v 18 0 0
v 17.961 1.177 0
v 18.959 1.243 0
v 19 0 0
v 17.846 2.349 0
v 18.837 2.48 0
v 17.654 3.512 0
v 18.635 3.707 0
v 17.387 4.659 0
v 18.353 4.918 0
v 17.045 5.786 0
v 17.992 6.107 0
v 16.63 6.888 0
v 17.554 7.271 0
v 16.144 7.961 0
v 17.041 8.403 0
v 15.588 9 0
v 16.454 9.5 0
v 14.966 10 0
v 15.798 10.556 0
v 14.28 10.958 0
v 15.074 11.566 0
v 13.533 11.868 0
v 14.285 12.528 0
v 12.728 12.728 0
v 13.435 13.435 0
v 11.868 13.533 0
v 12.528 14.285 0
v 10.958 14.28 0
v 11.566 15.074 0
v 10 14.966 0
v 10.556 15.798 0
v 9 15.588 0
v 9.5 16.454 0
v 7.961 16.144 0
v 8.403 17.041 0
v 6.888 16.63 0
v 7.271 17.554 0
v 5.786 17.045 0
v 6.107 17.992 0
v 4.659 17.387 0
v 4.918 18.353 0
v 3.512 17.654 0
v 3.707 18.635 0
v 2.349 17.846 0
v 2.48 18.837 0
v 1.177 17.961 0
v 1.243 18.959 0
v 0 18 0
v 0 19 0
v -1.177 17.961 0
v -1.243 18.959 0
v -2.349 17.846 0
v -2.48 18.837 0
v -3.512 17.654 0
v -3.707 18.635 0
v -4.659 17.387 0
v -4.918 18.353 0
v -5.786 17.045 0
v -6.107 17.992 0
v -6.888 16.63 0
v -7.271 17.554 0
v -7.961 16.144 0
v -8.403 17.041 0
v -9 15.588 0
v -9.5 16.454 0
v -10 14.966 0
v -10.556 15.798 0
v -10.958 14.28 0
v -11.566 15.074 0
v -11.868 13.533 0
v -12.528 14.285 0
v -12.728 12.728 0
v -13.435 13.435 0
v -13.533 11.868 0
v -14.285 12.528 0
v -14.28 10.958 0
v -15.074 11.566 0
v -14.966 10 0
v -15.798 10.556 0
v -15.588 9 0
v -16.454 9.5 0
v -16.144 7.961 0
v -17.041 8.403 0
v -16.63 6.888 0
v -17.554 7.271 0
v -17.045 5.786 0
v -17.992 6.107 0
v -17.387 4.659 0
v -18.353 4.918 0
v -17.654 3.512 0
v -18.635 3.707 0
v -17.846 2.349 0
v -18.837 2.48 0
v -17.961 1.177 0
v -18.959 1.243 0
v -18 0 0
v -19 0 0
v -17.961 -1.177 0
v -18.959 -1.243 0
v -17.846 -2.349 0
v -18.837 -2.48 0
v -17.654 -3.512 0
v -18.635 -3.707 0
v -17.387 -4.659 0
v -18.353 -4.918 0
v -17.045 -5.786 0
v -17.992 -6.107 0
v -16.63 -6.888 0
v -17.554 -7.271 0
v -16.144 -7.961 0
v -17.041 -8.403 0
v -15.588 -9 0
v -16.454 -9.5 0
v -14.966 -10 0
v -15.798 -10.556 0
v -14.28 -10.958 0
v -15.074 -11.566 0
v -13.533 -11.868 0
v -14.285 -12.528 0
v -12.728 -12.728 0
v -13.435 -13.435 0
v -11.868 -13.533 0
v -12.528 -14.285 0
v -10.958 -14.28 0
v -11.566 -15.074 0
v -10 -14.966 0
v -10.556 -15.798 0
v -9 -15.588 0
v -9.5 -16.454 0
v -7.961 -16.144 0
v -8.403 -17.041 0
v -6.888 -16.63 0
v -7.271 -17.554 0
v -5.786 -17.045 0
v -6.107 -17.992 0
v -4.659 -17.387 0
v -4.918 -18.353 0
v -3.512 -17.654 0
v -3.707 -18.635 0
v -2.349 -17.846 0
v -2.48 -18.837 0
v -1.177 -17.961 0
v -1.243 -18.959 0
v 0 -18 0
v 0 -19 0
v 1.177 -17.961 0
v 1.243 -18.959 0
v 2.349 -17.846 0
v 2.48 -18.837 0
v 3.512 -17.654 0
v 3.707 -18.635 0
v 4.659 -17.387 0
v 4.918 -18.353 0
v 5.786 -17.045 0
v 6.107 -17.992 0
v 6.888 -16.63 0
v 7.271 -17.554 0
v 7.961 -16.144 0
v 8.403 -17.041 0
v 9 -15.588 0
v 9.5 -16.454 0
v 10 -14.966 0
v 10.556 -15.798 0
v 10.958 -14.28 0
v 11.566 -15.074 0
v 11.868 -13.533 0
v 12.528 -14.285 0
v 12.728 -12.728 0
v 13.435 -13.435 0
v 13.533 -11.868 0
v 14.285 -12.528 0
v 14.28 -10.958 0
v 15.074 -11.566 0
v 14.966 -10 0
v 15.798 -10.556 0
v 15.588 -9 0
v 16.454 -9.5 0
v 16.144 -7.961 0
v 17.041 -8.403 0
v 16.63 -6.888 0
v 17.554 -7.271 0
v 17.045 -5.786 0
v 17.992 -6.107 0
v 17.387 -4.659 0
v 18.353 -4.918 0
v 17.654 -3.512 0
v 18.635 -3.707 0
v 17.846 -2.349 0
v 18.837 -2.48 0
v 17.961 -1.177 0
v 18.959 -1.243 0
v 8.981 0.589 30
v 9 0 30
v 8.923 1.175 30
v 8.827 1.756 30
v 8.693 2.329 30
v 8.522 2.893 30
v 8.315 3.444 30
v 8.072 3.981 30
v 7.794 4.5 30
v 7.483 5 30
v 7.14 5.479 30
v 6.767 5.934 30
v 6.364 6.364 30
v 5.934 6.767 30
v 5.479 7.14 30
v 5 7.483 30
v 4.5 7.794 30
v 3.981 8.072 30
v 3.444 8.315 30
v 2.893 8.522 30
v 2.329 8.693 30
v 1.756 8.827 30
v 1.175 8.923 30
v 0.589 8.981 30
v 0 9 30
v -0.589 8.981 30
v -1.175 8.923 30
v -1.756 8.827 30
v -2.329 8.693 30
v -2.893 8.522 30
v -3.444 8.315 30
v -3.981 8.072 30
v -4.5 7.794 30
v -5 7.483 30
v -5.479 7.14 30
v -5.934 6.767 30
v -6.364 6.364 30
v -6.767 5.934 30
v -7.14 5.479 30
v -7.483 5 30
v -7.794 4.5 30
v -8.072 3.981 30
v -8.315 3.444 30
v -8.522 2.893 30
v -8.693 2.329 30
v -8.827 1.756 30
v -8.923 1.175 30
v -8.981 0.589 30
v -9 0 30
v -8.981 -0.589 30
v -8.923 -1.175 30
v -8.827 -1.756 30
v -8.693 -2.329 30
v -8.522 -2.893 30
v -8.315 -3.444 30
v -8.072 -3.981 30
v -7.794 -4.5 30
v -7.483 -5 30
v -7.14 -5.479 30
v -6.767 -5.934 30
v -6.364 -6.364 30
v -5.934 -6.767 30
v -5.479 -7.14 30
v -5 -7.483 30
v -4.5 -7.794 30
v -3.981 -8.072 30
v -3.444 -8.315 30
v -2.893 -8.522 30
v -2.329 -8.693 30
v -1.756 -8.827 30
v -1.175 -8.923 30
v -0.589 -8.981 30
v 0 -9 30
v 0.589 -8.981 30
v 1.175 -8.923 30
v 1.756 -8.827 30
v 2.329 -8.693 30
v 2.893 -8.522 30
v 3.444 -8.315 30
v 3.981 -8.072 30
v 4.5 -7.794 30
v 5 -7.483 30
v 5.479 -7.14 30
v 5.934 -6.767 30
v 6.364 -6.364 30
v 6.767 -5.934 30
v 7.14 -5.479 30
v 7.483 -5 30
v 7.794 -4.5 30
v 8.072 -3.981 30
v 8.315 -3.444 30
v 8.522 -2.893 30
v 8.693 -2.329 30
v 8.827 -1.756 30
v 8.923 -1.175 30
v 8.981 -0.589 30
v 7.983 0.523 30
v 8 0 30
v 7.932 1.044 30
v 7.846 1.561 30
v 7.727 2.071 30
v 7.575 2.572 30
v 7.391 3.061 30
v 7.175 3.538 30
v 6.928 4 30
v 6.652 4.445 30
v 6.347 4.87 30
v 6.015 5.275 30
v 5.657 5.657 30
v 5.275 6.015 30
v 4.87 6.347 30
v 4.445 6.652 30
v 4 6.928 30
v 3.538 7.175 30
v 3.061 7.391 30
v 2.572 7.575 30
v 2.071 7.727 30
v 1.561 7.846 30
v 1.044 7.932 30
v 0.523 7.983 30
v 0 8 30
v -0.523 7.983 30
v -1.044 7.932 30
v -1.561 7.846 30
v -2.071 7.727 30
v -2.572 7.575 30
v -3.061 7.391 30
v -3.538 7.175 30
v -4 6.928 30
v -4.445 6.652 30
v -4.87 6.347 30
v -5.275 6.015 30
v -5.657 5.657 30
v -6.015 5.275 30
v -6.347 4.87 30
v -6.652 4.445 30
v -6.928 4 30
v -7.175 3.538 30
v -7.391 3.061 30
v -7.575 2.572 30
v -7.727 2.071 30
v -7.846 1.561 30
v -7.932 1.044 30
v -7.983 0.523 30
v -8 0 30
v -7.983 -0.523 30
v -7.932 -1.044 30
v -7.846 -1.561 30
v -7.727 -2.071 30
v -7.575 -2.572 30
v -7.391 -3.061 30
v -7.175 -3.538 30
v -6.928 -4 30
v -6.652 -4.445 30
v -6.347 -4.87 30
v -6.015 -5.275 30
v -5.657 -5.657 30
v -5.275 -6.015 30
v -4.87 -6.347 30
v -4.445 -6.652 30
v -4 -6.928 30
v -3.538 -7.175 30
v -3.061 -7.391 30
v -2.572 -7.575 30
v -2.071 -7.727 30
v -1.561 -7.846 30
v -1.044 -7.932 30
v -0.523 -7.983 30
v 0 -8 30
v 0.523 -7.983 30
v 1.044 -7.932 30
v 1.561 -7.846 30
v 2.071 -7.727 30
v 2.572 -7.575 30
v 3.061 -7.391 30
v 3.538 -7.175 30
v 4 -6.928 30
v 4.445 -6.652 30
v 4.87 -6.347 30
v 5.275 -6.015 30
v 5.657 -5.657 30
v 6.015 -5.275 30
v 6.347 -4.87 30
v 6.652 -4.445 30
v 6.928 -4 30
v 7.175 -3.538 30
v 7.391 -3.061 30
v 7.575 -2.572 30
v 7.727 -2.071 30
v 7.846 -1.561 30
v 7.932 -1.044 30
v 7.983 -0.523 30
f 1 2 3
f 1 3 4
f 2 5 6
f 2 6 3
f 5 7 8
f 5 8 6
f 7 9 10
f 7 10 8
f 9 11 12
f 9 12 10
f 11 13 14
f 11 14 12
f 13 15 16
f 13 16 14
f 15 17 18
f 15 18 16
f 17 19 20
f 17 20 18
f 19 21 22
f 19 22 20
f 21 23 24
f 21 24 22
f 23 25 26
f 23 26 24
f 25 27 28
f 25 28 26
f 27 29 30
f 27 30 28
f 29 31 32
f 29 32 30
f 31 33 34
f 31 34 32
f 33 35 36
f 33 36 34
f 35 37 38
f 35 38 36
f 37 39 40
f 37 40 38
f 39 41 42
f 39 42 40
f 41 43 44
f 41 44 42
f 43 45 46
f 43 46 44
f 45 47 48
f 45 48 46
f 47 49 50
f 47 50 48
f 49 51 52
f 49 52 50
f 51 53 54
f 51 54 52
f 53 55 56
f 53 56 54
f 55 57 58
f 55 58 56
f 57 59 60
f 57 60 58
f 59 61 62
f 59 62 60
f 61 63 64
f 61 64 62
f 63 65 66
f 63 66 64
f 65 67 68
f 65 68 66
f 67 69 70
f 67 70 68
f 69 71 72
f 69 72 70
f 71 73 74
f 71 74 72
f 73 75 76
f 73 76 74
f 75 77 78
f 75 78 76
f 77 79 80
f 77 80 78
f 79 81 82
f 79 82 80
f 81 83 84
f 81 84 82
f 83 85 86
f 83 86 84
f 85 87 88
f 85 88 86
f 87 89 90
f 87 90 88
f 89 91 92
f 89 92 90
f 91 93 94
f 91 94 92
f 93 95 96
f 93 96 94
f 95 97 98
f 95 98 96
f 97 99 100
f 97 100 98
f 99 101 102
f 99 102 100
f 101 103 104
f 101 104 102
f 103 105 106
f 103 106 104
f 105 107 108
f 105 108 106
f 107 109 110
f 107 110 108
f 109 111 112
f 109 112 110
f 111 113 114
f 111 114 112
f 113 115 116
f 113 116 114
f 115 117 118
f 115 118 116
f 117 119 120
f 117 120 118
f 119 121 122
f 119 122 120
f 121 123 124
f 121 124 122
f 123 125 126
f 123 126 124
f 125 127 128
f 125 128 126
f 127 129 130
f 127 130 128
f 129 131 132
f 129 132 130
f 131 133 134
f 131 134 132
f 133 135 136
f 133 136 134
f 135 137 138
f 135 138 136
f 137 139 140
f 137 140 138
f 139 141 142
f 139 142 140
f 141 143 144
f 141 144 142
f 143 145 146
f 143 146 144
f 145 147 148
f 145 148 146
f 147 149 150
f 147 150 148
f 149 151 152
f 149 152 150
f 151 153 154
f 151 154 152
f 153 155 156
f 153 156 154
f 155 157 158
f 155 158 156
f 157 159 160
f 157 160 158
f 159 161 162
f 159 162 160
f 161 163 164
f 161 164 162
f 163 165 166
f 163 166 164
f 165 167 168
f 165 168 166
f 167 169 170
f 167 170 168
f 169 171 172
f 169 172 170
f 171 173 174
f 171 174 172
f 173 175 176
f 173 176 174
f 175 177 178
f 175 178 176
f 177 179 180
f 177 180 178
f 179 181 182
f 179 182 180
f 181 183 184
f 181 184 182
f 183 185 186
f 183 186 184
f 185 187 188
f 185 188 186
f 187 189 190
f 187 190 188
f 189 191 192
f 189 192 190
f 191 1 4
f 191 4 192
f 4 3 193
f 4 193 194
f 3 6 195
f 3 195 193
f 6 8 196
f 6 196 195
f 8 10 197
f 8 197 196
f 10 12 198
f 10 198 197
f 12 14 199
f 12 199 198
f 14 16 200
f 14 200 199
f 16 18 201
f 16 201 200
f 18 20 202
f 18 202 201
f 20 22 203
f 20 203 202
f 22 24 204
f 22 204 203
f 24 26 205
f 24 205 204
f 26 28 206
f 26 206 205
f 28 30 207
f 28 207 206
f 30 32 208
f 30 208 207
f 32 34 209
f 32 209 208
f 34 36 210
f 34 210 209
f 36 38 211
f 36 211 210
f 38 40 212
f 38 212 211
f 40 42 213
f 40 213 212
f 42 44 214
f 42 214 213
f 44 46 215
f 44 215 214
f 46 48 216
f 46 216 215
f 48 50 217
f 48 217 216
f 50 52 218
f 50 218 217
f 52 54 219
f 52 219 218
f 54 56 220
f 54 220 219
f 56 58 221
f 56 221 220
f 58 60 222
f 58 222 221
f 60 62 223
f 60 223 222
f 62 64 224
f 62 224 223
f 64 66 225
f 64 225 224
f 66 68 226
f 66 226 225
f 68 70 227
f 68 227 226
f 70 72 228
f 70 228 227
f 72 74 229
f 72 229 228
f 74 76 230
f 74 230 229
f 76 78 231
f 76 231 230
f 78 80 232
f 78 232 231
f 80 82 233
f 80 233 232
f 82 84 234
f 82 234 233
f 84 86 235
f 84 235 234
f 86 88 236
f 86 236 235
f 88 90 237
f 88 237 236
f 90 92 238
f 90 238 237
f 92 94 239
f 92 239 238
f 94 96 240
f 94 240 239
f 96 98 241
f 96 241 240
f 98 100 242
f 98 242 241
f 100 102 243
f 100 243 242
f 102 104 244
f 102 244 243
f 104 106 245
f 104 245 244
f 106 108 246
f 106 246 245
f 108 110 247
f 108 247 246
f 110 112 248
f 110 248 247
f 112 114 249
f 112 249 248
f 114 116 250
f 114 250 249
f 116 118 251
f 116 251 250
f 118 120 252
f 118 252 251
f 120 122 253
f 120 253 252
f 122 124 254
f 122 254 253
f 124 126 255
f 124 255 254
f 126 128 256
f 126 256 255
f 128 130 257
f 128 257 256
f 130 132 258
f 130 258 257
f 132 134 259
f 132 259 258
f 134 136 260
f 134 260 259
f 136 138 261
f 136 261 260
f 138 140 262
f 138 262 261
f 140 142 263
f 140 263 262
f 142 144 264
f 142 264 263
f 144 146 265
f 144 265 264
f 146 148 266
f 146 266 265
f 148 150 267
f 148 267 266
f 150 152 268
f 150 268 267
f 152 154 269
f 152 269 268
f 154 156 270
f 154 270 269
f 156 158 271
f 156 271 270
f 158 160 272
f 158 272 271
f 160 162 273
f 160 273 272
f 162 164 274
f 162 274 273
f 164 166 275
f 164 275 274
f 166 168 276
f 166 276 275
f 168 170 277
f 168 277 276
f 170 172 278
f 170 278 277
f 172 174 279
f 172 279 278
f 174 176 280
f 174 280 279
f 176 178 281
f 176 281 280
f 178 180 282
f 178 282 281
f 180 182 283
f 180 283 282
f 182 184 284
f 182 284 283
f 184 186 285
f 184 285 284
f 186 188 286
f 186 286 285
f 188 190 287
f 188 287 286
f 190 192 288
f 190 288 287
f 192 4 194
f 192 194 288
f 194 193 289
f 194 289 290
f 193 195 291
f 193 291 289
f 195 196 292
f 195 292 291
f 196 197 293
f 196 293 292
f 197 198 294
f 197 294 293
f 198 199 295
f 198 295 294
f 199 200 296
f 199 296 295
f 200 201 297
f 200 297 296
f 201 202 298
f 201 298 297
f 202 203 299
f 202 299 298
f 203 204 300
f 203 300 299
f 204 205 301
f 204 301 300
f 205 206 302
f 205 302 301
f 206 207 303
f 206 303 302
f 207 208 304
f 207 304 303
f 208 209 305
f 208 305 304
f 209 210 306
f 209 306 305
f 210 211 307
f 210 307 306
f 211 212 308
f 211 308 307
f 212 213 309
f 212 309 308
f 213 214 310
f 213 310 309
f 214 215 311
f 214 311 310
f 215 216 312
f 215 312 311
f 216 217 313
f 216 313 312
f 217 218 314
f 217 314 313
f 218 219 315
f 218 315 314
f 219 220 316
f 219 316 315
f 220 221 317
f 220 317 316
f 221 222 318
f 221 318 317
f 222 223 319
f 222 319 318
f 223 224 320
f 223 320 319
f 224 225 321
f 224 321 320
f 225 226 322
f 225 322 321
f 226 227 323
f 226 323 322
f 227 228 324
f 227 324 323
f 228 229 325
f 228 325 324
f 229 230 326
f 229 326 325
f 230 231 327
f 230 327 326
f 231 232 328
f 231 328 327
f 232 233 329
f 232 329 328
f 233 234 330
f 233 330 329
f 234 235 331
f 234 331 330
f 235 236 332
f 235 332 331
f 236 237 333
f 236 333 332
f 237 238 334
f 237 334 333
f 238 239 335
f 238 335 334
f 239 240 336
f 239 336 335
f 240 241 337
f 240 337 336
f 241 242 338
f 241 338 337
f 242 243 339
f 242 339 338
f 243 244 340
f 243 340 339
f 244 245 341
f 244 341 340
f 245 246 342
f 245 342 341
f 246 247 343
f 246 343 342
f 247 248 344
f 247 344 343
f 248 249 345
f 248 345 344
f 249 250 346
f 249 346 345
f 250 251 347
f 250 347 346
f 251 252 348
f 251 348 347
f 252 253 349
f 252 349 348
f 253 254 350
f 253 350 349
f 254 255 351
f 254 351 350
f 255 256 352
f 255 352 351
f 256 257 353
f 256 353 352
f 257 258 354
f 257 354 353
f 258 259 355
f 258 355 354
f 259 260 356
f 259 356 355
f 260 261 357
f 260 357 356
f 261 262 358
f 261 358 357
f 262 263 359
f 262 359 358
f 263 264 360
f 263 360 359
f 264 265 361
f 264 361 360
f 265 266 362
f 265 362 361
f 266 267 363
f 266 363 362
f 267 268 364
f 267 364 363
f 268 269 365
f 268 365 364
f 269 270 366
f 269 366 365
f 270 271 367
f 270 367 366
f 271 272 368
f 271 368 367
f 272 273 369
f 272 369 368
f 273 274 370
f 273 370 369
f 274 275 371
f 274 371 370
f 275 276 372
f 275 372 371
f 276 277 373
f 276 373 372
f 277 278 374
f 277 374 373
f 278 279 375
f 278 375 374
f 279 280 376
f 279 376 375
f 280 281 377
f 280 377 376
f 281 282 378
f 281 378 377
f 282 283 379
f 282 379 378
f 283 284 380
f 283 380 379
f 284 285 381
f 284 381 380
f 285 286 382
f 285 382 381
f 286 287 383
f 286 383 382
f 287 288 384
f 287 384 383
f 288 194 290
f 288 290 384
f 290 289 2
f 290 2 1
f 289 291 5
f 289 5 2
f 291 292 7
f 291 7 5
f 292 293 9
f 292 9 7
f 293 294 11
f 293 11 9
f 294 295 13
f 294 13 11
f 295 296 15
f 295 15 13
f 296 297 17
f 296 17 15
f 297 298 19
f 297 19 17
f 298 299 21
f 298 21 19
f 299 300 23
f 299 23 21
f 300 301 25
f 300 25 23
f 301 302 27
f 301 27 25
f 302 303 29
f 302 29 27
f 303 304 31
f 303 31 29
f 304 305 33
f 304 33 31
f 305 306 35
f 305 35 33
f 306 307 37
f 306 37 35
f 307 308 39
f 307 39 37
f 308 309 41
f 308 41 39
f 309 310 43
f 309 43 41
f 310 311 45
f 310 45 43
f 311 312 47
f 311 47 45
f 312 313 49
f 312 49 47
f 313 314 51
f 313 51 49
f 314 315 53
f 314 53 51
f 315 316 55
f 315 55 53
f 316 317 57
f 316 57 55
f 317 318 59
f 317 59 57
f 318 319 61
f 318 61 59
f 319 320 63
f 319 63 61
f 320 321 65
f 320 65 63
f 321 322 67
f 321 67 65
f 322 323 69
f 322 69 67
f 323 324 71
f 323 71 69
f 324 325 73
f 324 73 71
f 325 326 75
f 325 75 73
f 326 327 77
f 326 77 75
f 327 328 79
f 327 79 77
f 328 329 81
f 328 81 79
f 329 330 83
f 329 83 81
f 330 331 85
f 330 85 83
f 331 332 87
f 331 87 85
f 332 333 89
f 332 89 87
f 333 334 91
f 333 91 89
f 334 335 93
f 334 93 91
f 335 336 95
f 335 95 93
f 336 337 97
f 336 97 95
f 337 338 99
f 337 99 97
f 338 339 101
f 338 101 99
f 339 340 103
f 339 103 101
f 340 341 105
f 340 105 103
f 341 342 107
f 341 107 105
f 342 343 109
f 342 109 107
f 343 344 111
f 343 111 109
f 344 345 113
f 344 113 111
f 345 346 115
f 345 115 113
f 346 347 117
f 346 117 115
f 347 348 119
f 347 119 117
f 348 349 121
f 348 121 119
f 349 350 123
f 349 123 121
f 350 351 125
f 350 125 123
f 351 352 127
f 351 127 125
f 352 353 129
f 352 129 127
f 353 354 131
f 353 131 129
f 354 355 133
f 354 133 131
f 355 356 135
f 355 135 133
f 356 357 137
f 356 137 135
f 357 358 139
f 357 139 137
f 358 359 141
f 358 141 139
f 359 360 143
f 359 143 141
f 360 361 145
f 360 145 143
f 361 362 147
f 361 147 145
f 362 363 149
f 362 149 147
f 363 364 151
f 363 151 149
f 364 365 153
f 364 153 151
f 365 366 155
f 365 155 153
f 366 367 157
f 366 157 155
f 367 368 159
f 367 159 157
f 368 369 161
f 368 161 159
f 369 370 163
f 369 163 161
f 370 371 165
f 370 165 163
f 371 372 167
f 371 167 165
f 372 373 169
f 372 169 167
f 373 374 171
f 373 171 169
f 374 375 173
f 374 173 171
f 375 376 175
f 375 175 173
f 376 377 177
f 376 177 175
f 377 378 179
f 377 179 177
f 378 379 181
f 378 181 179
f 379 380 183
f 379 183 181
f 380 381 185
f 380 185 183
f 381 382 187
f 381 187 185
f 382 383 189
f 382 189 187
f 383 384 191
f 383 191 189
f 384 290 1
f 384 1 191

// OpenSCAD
// Original MechIntel educational model. CC0-1.0. Units: mm.
// Not a standardized or load-rated component.
$fn=96;
// Section points: [radius, height], mm. Edit to change the profile.
section=[[18, 0], [19, 0], [9, 30], [8, 30]];
rotate_extrude($fn=96) polygon(points=section);
